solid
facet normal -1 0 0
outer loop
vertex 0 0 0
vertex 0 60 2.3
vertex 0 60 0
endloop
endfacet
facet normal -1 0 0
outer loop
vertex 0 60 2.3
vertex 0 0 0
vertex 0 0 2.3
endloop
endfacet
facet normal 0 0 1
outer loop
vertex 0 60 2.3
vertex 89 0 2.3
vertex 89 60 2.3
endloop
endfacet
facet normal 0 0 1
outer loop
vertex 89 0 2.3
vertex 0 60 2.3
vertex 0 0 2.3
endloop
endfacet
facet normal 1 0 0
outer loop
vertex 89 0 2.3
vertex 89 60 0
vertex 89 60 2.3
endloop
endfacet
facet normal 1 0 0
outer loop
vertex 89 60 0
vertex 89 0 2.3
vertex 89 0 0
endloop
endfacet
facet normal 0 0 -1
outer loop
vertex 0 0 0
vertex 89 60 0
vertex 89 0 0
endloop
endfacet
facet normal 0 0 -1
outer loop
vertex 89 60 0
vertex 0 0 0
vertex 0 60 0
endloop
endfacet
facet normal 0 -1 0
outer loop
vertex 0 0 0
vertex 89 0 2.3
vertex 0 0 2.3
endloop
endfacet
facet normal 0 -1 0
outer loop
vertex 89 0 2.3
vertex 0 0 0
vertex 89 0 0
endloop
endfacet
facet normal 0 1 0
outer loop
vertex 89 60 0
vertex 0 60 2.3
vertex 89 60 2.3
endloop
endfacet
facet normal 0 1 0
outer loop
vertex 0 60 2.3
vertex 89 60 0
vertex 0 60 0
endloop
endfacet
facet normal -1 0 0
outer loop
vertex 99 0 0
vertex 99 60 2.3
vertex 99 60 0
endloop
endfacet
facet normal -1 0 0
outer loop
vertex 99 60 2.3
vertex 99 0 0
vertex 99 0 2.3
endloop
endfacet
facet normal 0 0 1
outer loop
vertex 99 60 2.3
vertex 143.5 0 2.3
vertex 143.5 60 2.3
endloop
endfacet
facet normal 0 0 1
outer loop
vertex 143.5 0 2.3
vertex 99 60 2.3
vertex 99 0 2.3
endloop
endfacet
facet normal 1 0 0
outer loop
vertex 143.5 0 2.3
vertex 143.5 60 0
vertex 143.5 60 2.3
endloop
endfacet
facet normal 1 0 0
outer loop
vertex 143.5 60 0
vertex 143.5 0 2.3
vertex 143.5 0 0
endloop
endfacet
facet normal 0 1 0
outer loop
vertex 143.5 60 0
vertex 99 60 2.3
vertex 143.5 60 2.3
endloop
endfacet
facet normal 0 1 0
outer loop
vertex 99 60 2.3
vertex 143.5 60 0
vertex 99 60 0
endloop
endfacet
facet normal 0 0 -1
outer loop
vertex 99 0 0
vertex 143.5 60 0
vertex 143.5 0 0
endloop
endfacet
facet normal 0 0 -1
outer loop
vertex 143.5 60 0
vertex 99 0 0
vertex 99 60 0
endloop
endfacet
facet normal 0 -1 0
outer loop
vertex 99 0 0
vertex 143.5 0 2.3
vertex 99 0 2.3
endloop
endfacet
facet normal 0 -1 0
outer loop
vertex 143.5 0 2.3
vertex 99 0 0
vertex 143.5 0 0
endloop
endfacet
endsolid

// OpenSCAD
tol = 0.1;
lPlateL = 89;
sPlateL = 44.5;
plateW = 60;


plateT = 2.3;

cube([lPlateL,plateW,plateT]);

translate([lPlateL+10,0,0])
cube([sPlateL,plateW,plateT]);
